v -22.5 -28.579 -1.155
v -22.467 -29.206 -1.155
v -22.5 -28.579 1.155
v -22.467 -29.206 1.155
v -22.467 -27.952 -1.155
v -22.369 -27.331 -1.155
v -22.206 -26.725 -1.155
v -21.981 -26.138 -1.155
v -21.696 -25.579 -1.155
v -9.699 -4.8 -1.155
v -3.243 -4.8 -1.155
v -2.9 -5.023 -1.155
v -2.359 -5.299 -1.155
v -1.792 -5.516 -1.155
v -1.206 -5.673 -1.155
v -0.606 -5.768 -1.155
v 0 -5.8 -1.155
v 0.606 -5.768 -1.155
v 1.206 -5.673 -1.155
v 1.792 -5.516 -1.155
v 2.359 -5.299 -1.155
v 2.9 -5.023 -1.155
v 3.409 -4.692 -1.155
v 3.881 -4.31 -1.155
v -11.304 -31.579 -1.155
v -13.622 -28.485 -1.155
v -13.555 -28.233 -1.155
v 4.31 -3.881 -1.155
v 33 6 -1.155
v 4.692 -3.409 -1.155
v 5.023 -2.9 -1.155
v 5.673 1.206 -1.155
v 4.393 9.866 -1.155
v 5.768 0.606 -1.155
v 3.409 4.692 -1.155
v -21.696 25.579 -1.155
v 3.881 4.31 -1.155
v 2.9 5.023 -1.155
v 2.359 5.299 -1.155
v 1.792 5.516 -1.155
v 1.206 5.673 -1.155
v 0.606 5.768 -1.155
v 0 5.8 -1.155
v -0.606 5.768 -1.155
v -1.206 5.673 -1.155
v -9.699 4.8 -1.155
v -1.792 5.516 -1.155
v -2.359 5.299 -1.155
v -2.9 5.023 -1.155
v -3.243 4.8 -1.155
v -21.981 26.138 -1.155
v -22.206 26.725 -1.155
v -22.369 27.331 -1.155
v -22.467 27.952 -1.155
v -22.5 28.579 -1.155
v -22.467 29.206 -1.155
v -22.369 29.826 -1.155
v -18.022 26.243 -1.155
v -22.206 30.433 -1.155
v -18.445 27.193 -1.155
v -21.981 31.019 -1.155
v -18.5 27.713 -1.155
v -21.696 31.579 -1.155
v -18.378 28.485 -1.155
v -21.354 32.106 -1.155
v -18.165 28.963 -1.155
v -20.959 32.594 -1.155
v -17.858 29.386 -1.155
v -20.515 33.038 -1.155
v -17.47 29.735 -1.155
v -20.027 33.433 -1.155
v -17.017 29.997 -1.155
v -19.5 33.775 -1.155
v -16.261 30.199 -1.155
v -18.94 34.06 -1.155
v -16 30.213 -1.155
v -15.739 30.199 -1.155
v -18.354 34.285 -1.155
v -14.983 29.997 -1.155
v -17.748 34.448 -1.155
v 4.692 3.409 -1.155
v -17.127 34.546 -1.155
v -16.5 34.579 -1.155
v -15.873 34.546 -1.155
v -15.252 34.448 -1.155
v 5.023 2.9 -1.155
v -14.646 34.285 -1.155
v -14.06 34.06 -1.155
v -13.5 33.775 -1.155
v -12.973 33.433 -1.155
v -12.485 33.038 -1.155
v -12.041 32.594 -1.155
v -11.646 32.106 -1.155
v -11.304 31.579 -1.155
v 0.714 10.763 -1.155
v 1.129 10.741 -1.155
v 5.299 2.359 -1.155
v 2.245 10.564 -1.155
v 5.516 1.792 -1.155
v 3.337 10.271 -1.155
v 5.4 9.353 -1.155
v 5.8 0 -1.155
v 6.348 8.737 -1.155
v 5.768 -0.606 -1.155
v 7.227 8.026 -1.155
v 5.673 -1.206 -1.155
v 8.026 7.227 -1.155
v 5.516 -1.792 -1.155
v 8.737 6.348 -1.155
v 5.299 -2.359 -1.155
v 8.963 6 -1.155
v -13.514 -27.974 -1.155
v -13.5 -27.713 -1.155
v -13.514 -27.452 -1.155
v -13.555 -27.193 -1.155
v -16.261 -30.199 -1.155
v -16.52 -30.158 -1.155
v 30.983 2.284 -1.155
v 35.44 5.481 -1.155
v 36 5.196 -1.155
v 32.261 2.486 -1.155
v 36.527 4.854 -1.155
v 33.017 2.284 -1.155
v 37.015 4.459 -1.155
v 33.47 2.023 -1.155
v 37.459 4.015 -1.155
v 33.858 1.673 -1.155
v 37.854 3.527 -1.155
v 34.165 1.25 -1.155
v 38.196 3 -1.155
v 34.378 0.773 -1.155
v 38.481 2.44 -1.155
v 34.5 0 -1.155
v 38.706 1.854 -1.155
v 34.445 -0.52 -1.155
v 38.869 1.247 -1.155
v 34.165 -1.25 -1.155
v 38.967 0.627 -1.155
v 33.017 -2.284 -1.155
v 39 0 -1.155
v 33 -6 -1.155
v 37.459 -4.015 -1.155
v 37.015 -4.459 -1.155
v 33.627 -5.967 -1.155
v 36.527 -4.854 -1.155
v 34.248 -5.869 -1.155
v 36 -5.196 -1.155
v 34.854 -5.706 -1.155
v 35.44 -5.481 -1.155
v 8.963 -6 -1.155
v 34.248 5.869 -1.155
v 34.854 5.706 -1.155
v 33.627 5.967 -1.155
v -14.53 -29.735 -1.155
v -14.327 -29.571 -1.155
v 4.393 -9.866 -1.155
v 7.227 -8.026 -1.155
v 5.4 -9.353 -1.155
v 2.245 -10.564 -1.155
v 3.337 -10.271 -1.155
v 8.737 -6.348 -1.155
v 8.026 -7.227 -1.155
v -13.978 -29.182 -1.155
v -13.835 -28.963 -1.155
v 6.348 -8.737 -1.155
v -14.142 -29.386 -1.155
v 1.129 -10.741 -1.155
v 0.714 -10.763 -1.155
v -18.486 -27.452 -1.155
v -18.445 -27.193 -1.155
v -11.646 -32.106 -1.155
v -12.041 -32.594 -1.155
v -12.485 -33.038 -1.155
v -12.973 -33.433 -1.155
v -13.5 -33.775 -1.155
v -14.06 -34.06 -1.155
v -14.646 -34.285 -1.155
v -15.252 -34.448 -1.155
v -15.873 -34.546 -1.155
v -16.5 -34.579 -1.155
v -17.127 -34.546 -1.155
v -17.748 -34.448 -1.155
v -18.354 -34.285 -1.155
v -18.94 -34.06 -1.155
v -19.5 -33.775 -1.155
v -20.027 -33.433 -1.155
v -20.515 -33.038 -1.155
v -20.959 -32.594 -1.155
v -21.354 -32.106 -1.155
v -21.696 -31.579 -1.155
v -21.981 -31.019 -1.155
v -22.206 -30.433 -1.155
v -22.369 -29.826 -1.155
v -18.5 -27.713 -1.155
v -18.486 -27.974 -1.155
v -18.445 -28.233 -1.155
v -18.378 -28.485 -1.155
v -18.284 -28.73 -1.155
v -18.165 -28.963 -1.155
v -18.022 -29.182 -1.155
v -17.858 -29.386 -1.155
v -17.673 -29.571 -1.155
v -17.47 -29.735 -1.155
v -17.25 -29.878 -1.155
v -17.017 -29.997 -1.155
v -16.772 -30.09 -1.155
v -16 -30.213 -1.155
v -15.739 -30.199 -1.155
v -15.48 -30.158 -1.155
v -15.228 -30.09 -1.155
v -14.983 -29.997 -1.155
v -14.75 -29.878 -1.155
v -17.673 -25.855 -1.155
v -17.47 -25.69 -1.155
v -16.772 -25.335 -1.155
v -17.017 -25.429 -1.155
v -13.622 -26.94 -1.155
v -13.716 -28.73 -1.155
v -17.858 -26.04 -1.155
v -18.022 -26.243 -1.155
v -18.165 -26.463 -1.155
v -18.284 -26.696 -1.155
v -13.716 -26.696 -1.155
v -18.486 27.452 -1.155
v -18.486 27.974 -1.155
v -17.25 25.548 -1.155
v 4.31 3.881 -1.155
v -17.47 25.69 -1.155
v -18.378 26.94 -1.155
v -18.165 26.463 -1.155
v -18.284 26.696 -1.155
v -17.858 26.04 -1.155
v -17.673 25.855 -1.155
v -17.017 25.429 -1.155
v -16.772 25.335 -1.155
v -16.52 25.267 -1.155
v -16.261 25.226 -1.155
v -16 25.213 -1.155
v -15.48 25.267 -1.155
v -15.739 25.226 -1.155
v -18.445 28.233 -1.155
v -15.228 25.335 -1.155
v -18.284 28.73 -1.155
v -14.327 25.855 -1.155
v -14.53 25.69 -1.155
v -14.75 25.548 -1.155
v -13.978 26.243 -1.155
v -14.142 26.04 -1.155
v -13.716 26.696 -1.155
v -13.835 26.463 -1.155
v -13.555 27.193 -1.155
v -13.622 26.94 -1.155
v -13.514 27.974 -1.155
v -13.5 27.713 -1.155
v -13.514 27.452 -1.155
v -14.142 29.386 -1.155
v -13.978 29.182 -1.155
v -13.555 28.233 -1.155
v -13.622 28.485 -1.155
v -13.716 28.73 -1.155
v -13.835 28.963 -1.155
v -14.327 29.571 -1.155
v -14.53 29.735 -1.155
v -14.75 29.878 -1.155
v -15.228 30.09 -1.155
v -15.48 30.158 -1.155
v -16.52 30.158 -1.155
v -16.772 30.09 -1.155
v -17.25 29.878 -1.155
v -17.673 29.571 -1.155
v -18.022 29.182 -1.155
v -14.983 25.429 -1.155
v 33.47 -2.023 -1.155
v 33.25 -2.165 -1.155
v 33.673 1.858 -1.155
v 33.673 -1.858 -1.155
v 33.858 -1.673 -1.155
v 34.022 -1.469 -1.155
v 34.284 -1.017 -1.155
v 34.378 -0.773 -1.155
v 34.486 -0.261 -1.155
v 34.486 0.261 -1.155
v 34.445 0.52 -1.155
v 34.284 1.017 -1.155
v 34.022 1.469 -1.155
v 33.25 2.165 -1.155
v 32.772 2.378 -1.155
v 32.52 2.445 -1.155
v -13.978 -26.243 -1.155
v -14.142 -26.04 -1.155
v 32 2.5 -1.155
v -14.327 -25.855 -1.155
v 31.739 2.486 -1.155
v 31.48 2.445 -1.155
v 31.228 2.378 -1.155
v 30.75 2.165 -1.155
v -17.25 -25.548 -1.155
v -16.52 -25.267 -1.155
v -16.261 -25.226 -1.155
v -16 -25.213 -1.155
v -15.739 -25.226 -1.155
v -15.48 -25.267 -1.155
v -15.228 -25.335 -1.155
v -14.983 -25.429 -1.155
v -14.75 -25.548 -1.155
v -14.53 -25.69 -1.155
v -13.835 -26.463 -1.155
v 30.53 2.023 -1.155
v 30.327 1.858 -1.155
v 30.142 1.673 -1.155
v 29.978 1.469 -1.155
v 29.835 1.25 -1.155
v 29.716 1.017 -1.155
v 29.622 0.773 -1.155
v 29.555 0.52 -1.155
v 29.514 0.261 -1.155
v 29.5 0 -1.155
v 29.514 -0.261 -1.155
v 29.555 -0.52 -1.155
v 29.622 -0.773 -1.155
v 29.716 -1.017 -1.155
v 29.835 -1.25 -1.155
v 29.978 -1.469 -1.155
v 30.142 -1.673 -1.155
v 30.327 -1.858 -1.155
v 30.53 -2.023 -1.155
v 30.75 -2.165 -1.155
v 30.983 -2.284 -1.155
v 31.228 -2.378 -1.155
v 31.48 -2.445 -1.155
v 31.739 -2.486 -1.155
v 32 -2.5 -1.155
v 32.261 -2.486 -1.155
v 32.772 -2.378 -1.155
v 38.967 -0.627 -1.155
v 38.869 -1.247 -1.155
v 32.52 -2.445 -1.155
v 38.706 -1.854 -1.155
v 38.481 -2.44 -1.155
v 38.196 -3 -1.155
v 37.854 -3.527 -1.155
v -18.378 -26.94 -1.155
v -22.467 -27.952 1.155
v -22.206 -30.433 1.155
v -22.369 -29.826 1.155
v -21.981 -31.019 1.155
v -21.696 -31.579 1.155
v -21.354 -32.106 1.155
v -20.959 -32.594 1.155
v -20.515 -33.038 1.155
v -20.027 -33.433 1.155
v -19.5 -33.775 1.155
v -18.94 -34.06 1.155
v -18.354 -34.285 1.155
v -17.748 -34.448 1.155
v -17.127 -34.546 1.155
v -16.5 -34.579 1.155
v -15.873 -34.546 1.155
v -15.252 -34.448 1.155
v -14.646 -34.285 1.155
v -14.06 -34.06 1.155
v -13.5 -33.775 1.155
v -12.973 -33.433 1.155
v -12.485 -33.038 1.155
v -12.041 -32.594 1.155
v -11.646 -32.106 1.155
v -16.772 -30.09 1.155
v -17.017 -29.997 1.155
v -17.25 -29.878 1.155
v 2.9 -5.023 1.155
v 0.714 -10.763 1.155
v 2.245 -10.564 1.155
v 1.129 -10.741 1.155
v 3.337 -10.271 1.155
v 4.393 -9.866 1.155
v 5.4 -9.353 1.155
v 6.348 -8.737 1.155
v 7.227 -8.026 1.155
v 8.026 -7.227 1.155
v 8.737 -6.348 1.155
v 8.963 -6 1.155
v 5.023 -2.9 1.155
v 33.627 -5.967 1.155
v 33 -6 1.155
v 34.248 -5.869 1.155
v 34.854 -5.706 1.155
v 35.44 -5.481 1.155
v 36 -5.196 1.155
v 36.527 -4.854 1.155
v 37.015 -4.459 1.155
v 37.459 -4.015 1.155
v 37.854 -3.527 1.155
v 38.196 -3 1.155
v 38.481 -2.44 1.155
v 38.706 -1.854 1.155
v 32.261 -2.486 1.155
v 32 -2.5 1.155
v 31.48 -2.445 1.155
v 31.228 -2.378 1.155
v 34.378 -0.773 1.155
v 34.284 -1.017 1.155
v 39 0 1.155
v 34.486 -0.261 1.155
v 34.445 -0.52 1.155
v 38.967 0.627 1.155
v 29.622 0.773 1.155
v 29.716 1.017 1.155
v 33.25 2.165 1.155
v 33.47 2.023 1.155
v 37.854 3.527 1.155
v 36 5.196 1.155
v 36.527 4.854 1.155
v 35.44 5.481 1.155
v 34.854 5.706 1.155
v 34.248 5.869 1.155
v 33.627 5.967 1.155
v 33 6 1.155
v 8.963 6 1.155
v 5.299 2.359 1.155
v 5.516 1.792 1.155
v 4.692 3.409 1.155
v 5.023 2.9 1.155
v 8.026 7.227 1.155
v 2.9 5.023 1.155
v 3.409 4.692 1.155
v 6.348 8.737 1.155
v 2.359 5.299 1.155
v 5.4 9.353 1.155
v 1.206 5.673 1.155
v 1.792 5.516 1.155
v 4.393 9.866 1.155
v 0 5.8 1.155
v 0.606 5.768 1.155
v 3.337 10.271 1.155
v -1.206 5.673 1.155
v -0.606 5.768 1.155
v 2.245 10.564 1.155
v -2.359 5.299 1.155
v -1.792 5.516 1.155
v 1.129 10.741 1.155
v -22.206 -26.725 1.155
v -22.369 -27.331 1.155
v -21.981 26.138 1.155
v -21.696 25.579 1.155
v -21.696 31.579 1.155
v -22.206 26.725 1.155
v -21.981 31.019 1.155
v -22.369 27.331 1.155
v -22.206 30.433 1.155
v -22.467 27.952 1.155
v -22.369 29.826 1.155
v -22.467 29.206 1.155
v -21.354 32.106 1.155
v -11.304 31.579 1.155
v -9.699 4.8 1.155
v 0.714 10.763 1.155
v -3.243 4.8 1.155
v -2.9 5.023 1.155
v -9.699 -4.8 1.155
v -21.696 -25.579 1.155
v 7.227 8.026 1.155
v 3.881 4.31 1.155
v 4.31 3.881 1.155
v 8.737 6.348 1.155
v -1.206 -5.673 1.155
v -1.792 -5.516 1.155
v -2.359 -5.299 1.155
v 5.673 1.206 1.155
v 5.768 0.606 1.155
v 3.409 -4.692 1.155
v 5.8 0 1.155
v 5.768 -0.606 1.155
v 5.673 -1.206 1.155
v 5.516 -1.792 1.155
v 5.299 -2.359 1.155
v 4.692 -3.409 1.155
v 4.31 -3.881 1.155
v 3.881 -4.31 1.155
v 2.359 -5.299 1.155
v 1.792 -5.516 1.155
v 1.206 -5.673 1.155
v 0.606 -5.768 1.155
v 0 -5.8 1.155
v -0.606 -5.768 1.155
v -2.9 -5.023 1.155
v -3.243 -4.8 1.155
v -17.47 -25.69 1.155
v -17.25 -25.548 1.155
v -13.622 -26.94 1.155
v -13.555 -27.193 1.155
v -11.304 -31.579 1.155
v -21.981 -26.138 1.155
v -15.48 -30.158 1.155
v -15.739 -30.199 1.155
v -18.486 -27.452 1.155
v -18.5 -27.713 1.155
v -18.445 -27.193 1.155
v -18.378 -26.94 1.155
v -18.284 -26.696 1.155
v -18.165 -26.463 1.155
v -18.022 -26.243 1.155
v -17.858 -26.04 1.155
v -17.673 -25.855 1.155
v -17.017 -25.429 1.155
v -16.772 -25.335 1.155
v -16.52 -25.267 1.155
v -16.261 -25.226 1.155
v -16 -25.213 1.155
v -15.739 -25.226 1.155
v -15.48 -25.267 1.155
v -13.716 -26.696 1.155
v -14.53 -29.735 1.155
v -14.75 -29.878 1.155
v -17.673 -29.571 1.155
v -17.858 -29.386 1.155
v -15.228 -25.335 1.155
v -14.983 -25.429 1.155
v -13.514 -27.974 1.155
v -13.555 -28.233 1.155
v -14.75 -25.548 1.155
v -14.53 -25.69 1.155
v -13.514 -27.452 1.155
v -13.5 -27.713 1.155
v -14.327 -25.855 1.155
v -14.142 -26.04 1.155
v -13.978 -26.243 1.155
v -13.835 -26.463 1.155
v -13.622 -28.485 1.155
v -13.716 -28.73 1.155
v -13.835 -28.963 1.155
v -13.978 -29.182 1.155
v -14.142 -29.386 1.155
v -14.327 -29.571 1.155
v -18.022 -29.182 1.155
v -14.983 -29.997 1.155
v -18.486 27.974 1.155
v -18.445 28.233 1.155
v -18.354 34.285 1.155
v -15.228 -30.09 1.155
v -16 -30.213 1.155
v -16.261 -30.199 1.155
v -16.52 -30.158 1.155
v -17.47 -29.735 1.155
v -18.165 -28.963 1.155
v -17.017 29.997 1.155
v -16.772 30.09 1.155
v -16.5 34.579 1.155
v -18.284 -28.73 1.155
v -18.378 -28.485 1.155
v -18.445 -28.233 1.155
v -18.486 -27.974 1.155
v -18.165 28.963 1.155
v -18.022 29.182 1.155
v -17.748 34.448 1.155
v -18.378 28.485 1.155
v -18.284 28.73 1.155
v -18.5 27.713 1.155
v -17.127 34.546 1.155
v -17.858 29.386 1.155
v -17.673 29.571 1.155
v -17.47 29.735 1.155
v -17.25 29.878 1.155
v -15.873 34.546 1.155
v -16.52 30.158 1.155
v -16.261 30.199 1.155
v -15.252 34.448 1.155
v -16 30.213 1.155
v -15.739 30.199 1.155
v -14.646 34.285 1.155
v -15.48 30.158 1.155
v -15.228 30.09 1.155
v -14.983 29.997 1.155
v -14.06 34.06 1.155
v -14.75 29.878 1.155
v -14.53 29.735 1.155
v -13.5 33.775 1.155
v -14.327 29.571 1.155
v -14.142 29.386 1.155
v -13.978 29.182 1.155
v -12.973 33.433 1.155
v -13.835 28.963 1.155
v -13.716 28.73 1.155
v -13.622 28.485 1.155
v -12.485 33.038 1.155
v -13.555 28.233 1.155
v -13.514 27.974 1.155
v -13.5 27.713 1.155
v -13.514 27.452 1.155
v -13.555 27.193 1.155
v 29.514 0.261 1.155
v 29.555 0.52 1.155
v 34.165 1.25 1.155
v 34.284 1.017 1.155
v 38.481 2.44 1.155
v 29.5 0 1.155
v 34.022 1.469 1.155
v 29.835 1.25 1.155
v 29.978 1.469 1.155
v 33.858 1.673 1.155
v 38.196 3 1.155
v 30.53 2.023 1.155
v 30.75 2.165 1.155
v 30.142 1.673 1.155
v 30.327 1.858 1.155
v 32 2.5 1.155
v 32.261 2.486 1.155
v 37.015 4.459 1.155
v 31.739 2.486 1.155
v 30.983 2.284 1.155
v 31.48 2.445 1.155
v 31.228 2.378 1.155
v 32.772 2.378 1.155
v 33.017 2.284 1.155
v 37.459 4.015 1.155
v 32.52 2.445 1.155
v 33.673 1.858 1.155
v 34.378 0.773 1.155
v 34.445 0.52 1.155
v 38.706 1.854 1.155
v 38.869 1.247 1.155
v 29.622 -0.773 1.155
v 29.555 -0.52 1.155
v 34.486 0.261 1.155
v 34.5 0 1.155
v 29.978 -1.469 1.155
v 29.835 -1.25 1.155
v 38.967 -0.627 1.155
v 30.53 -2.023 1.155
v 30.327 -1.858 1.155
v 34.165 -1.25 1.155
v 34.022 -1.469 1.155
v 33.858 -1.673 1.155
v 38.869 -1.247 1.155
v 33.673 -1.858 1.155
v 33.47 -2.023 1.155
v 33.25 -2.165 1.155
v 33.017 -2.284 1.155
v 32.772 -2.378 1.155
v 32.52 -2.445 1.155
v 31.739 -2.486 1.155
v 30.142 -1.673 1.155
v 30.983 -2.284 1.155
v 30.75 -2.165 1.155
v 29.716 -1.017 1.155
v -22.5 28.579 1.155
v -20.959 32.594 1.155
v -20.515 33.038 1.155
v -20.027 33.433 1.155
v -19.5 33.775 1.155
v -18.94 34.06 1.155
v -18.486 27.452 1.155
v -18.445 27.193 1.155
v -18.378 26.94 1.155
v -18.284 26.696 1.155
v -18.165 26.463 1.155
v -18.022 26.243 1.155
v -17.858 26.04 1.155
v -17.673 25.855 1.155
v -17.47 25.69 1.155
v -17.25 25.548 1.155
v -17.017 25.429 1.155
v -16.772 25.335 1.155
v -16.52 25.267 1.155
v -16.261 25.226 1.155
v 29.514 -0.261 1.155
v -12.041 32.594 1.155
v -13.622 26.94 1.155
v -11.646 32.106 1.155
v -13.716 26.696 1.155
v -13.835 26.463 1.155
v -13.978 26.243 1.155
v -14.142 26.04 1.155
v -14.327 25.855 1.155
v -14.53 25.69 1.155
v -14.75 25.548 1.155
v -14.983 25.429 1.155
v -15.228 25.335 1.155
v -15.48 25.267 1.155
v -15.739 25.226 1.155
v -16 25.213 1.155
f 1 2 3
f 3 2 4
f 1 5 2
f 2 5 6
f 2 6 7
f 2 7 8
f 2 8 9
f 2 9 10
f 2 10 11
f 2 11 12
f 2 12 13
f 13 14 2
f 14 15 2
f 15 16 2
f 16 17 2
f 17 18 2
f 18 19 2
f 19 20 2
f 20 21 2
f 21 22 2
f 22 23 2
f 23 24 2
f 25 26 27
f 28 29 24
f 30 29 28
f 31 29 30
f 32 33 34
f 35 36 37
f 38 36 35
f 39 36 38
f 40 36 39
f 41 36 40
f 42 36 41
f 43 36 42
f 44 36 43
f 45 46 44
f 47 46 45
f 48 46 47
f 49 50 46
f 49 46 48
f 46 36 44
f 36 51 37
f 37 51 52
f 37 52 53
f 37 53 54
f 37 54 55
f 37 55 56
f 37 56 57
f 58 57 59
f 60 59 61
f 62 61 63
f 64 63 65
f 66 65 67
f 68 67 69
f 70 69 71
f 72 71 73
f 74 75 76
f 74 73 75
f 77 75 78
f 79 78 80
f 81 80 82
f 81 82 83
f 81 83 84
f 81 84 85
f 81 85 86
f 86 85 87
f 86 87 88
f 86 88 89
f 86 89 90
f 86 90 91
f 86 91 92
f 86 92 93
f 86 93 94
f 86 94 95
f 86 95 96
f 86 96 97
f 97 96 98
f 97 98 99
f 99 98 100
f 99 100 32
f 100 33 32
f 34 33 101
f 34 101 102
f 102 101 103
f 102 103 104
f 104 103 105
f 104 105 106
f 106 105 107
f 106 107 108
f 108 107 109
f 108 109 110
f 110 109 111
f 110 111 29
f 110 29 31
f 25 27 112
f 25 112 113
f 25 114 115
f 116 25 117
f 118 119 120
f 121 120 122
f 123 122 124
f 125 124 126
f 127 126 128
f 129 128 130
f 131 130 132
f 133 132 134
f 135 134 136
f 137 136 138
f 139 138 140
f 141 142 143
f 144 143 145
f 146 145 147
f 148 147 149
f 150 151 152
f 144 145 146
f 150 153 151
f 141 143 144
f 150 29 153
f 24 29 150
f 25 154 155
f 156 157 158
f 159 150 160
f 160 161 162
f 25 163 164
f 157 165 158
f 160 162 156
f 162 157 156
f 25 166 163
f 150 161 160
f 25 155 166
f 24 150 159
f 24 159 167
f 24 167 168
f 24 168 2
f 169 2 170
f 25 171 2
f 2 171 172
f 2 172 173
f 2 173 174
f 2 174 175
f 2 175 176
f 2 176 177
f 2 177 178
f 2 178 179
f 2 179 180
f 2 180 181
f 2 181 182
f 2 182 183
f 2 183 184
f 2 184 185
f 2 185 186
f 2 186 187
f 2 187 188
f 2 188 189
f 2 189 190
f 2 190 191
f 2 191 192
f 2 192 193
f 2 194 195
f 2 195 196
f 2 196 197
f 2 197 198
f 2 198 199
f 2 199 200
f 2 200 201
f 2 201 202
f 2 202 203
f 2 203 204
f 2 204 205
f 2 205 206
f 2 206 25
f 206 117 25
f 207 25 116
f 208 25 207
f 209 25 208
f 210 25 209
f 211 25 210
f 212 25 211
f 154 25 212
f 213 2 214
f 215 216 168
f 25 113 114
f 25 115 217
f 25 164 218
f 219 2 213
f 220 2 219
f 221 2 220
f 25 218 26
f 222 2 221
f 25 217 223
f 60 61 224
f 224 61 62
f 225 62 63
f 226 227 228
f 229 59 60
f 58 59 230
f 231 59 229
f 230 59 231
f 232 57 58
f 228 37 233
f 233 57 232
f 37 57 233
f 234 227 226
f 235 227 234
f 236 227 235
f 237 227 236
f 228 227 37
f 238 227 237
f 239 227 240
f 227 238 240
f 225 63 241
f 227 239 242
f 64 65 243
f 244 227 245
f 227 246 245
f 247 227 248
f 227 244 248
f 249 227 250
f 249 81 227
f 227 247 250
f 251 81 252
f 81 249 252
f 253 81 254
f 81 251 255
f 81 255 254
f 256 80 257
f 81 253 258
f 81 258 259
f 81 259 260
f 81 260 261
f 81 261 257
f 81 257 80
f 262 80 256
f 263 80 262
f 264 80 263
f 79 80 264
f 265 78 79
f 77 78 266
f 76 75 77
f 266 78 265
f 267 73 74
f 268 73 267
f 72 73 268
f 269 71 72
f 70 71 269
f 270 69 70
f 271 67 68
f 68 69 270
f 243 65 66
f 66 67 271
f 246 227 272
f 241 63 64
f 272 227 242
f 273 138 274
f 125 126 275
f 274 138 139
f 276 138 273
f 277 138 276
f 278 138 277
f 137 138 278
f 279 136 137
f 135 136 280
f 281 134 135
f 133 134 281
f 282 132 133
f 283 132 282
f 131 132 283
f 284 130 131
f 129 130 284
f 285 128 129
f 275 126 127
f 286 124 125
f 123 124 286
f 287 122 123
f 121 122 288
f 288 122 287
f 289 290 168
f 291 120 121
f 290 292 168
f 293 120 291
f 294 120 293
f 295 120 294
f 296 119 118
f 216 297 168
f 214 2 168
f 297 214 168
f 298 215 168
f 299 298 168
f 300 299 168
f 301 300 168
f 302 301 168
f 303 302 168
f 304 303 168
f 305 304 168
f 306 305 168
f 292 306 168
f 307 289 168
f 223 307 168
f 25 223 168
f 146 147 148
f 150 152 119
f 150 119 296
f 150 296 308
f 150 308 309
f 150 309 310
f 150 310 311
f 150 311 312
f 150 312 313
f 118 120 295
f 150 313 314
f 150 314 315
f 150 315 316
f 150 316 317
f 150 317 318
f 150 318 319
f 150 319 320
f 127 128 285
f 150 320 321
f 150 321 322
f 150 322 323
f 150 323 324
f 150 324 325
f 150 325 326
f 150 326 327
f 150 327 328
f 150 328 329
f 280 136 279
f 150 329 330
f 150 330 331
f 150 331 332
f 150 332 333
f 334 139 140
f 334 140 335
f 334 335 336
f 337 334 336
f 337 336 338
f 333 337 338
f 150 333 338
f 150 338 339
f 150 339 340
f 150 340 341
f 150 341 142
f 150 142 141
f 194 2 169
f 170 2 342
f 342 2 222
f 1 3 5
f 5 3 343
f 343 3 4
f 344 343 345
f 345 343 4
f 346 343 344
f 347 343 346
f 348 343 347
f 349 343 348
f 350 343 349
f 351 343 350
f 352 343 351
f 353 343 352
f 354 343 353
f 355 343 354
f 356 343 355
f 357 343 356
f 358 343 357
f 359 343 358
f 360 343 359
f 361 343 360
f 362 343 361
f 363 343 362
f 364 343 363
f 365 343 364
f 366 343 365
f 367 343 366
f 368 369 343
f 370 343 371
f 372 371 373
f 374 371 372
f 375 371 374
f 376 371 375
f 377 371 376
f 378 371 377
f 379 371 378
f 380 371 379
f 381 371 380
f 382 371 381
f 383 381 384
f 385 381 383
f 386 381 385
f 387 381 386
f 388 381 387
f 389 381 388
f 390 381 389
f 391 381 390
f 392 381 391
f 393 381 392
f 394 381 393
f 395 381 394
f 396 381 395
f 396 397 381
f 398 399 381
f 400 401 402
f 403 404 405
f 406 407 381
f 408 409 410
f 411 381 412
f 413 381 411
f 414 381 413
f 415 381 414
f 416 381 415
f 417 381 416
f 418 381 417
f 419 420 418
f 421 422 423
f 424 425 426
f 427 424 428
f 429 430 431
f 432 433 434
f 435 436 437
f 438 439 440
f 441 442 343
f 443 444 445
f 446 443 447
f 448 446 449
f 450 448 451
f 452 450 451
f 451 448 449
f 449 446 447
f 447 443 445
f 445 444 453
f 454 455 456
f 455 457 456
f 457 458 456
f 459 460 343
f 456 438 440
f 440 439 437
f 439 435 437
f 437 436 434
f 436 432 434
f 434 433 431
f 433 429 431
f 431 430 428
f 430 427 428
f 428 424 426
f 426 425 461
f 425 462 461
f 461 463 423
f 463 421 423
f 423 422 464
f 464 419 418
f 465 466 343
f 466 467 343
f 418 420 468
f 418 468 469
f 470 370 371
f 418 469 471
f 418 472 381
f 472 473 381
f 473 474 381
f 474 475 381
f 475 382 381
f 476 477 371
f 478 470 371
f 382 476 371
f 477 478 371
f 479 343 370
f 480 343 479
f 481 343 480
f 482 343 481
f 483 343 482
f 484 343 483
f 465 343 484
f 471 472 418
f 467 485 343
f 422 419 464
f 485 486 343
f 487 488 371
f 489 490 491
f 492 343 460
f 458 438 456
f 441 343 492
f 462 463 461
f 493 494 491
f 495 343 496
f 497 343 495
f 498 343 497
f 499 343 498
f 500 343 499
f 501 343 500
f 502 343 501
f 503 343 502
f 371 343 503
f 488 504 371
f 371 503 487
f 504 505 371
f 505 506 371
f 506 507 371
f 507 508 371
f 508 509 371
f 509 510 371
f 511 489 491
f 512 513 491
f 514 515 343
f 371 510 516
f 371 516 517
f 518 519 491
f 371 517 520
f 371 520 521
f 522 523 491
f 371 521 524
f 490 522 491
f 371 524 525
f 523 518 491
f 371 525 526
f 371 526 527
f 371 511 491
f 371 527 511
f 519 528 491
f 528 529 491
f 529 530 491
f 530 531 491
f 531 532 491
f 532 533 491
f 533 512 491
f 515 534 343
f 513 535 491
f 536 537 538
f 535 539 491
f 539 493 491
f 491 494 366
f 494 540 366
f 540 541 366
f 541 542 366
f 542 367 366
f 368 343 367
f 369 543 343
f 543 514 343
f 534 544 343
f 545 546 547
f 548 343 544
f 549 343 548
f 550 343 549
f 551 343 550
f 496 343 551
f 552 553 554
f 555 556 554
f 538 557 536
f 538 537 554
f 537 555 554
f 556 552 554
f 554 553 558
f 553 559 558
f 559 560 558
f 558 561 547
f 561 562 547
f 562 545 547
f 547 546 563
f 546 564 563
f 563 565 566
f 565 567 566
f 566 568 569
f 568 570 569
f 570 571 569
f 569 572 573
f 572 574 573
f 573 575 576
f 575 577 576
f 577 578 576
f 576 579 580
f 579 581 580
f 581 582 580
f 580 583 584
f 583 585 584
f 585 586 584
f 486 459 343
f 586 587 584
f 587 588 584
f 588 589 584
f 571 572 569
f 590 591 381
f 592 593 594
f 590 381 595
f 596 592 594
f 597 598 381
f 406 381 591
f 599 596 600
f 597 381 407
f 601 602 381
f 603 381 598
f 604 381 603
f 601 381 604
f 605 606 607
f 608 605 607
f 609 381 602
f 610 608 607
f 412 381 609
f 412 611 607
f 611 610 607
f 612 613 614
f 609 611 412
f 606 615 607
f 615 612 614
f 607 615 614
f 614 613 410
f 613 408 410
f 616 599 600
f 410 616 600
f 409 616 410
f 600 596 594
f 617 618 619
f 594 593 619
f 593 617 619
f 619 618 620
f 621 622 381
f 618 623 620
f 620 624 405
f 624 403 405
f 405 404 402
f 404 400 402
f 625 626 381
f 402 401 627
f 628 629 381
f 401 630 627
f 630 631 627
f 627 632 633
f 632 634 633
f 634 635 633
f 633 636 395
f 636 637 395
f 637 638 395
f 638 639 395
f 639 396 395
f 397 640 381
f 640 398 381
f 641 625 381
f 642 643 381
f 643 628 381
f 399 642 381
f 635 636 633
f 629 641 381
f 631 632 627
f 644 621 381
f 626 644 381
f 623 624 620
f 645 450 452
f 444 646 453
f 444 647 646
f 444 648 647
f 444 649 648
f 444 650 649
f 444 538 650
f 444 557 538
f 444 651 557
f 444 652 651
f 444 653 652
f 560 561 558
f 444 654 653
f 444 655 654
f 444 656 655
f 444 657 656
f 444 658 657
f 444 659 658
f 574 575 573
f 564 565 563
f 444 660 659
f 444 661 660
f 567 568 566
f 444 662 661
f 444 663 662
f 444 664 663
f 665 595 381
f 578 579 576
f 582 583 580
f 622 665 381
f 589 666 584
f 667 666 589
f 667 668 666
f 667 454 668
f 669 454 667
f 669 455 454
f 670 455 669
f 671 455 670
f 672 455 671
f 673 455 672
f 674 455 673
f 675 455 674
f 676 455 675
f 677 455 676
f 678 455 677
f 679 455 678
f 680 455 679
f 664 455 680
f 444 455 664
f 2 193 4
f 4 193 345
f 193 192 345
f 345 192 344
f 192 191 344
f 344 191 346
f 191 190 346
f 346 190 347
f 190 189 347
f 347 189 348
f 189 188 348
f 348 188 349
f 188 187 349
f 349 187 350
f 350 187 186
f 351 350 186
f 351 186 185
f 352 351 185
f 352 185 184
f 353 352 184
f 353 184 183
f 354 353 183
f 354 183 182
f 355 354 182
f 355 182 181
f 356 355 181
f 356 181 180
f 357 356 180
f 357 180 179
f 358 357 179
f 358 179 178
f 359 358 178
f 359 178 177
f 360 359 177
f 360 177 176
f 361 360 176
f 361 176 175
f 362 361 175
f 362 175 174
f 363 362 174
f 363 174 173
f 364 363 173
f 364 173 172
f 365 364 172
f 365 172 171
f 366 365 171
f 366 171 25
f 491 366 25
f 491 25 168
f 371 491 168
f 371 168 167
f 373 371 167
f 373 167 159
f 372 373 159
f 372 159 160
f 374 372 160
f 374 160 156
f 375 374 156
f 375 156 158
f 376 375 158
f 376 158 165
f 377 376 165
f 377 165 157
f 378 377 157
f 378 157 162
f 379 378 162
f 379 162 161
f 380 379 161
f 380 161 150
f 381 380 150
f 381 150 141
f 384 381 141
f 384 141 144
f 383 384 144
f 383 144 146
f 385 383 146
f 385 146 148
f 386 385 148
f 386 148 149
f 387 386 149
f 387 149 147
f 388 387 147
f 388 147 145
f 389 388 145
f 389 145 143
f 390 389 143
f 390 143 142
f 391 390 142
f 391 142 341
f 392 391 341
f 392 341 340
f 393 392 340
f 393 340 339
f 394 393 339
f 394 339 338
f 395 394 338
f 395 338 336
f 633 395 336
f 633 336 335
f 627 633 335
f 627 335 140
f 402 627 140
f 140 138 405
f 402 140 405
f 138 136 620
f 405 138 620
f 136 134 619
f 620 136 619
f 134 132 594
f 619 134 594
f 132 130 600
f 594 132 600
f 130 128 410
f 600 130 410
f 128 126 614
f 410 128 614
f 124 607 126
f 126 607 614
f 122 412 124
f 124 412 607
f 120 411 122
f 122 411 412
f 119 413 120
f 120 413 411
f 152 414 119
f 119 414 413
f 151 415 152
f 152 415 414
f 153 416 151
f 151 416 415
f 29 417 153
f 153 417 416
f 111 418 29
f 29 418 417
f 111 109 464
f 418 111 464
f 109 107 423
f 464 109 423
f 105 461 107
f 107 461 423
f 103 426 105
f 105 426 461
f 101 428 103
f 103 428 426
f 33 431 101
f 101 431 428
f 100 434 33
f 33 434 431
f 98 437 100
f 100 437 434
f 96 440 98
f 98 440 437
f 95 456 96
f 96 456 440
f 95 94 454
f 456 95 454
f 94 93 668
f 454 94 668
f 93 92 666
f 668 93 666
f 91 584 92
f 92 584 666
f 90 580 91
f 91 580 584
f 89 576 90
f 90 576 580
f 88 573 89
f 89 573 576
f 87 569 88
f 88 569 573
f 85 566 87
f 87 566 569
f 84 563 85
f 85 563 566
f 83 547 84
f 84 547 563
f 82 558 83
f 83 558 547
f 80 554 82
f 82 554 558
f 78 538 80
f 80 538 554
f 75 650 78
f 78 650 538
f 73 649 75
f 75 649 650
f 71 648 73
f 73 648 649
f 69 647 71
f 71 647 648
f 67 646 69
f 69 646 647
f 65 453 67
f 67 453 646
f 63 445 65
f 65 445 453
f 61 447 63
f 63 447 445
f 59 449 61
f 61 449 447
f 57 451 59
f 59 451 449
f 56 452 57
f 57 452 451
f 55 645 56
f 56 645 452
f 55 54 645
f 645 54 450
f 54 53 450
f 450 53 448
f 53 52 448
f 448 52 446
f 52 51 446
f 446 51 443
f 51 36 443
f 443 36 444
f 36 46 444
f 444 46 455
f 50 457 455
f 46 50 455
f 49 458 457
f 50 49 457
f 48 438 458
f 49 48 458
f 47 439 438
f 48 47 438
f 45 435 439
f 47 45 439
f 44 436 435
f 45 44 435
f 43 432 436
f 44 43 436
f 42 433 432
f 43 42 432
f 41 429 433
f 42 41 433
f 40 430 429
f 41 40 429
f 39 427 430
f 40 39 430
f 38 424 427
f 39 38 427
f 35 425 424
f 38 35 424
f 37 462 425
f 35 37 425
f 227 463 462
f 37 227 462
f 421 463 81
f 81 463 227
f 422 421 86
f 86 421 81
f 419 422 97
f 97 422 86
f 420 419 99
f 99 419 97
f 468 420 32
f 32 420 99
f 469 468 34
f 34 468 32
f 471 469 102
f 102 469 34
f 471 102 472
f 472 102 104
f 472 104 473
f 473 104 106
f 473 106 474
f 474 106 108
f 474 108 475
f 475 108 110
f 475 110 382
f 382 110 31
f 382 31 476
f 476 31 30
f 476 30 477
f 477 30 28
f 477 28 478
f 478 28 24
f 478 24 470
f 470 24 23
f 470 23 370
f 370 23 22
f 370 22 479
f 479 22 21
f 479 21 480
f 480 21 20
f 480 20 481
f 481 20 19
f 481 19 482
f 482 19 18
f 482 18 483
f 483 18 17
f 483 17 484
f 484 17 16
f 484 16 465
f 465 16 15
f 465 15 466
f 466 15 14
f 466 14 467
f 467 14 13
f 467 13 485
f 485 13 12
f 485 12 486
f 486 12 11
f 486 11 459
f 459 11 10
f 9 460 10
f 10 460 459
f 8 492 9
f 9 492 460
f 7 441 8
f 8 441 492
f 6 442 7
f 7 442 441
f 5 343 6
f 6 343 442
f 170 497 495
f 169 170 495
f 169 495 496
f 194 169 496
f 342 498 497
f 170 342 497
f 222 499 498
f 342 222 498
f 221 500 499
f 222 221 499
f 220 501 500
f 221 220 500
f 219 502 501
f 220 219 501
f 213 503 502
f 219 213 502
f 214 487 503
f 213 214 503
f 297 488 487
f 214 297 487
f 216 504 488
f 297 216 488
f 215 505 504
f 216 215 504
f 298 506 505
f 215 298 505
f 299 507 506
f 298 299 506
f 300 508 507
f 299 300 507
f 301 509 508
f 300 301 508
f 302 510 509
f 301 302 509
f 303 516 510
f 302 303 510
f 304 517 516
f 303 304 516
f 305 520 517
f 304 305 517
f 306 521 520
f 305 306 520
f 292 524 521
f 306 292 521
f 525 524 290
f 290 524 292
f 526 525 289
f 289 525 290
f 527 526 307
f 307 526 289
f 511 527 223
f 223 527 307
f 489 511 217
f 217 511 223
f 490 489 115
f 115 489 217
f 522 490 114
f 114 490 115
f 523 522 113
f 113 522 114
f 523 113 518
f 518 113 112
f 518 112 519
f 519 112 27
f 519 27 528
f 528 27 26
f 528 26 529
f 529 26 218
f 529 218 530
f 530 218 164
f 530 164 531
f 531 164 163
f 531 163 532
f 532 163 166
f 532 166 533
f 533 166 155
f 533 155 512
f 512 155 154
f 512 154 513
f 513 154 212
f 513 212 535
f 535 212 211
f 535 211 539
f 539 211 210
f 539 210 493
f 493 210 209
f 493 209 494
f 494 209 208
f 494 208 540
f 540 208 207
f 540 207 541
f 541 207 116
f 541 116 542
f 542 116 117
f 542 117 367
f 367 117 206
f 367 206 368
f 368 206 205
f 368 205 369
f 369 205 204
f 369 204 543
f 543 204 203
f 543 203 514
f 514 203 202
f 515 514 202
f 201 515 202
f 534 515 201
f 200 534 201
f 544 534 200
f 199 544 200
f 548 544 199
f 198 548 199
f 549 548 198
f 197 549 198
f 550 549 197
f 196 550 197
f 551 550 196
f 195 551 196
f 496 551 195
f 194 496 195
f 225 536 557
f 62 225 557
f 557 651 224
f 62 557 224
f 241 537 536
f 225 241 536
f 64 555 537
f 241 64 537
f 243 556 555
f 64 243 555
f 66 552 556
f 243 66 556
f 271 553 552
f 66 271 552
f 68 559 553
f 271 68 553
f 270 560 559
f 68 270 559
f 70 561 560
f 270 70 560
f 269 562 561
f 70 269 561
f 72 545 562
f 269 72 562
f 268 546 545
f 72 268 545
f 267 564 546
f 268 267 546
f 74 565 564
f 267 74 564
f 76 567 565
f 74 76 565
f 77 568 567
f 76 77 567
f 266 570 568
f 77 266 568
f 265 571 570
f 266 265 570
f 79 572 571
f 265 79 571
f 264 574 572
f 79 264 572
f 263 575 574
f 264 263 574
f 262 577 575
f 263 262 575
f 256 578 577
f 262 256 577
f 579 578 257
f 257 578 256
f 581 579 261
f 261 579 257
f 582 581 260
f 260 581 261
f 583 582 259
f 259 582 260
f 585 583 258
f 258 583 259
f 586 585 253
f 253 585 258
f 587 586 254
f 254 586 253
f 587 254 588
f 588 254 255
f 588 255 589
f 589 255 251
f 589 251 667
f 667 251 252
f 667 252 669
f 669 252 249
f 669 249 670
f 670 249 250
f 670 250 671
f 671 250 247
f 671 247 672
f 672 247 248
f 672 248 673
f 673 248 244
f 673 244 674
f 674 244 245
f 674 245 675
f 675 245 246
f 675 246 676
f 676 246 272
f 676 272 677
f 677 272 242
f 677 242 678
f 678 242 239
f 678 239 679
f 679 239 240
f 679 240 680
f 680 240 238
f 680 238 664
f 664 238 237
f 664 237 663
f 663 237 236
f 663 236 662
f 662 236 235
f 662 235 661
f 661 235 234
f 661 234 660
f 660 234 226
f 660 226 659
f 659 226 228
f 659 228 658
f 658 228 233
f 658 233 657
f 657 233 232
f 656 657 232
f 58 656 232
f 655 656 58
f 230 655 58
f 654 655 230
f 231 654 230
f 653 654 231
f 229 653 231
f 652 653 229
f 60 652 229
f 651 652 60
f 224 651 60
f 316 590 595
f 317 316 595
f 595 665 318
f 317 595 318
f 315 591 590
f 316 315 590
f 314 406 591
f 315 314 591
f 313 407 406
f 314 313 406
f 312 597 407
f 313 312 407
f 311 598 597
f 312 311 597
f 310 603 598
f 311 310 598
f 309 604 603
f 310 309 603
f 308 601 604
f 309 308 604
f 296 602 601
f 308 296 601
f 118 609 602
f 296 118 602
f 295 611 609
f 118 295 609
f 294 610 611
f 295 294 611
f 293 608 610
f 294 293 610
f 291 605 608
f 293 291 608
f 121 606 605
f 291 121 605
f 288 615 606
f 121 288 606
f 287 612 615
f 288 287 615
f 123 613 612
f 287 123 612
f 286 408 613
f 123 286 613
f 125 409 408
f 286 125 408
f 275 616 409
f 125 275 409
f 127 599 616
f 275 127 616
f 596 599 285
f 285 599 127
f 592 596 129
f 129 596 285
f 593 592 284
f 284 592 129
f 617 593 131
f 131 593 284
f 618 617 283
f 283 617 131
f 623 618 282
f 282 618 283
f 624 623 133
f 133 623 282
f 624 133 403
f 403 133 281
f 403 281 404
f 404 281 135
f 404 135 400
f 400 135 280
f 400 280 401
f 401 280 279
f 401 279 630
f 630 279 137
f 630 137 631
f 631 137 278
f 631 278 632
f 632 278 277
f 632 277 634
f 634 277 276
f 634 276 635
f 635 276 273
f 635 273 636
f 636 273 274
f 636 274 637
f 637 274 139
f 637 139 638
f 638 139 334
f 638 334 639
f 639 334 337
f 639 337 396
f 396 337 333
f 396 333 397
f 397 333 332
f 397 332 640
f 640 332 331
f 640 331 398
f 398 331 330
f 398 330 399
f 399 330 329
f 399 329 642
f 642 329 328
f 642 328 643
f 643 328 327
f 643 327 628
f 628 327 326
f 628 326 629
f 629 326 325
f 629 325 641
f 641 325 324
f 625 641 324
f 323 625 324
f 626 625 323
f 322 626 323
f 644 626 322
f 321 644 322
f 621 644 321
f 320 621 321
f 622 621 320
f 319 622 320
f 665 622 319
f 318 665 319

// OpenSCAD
// file: configuration.scad
//Configuration File
//Lets you adjust pretty much everything
//
//Makes it all super paramatric
//


//Configuration Block
$fn = 20;
module configBlock(){
	difference(){
		cube([15,30,10],center=true);

		union(){  //Vertical Holes
			translate([0,10,5]) rotate([0,0,0]) cylinder(r=M3/2,h=10,center=true);
			translate([0,3,5]) rotate([0,0,0]) cylinder(r=M4/2,h=10,center=true);
			translate([0,-8,5]) rotate([0,0,0]) cylinder(r=M8/2,h=10,center=true);
		}

		union(){  //Horizontal Holes
			translate([-8,10,0]) rotate([0,90,0]) cylinder(r=M3h/2,h=10,center=true);		
			translate([-8,3,0]) rotate([0,90,0]) cylinder(r=M4h/2,h=10,center=true);
			translate([-10,-6,0]) rotate([0,90,0]) cylinder(r=M3nut/2,h=10,center=true,$fn=6);

			translate([10,3,0]) rotate([0,90,0]) cylinder(r=M3washer/2,h=10,center=true);


			//translate([0,-8,0]) rotate([0,90,0]) cylinder(r=M8/2,h=10,center=true);
		}
	}
}

//configBlock();

//Bolts
M3 = 4;
M4 = 5;
M8 = 9;

M3h = 3.6;  //Horizontal versions
M4h = 5;  //Horizontal versions
M8h = 8; //Horizontal versions

//Nuts & Washers

M3washer = 7;
M3nut = 7;

//Size of other parts
rod = 8;  //Dimension of smooth rod
lm8uu = 16;

/*************************
 Printer Design files now
**************************/

//basic
arm_length = 100 ; //Length of the arms based on a planned 100x100 print size
pole_center = 60 ; //The pole distance from the center of the print
rod_sep = 25 + rod/2; // pole to pole seperation for one set. Includes rod length
rod_height = 260;

//motor end effector


//Universal joints
//holewidth = 6;
//arm_sep = 40;



//Hotend
// main file
include<configuration.scad>;

$fn=60;
clamp_h = 2.31;
ubis_gap = 11.65;


module clamp(){
	difference(){
		union(){
			for(i=[0:120:240]){
				hull(){
					rotate([0,0,i]) translate([33,0,0]) cylinder(r=6,h=clamp_h,center=true);
					cylinder(r=6,h=clamp_h,center=true);
				}
			}
			cylinder(r=ubis_gap/2+5,h=clamp_h,center=true);
		}


		for(i=[0:120:240]){
			rotate([0,0,i]) translate([32,0,0]) cylinder(r=M4/2,h=clamp_h+1,center=true);
		}
		
		cylinder(r=ubis_gap/2,h=clamp_h+1,center=true);
		hull(){
			cylinder(r=ubis_gap/2-1,h=clamp_h+1,center=true);
			translate([-30,0,0]) cylinder(r=ubis_gap/2-1,h=clamp_h+1,center=true);
		}

	}
}



//DRAWING

clamp();
